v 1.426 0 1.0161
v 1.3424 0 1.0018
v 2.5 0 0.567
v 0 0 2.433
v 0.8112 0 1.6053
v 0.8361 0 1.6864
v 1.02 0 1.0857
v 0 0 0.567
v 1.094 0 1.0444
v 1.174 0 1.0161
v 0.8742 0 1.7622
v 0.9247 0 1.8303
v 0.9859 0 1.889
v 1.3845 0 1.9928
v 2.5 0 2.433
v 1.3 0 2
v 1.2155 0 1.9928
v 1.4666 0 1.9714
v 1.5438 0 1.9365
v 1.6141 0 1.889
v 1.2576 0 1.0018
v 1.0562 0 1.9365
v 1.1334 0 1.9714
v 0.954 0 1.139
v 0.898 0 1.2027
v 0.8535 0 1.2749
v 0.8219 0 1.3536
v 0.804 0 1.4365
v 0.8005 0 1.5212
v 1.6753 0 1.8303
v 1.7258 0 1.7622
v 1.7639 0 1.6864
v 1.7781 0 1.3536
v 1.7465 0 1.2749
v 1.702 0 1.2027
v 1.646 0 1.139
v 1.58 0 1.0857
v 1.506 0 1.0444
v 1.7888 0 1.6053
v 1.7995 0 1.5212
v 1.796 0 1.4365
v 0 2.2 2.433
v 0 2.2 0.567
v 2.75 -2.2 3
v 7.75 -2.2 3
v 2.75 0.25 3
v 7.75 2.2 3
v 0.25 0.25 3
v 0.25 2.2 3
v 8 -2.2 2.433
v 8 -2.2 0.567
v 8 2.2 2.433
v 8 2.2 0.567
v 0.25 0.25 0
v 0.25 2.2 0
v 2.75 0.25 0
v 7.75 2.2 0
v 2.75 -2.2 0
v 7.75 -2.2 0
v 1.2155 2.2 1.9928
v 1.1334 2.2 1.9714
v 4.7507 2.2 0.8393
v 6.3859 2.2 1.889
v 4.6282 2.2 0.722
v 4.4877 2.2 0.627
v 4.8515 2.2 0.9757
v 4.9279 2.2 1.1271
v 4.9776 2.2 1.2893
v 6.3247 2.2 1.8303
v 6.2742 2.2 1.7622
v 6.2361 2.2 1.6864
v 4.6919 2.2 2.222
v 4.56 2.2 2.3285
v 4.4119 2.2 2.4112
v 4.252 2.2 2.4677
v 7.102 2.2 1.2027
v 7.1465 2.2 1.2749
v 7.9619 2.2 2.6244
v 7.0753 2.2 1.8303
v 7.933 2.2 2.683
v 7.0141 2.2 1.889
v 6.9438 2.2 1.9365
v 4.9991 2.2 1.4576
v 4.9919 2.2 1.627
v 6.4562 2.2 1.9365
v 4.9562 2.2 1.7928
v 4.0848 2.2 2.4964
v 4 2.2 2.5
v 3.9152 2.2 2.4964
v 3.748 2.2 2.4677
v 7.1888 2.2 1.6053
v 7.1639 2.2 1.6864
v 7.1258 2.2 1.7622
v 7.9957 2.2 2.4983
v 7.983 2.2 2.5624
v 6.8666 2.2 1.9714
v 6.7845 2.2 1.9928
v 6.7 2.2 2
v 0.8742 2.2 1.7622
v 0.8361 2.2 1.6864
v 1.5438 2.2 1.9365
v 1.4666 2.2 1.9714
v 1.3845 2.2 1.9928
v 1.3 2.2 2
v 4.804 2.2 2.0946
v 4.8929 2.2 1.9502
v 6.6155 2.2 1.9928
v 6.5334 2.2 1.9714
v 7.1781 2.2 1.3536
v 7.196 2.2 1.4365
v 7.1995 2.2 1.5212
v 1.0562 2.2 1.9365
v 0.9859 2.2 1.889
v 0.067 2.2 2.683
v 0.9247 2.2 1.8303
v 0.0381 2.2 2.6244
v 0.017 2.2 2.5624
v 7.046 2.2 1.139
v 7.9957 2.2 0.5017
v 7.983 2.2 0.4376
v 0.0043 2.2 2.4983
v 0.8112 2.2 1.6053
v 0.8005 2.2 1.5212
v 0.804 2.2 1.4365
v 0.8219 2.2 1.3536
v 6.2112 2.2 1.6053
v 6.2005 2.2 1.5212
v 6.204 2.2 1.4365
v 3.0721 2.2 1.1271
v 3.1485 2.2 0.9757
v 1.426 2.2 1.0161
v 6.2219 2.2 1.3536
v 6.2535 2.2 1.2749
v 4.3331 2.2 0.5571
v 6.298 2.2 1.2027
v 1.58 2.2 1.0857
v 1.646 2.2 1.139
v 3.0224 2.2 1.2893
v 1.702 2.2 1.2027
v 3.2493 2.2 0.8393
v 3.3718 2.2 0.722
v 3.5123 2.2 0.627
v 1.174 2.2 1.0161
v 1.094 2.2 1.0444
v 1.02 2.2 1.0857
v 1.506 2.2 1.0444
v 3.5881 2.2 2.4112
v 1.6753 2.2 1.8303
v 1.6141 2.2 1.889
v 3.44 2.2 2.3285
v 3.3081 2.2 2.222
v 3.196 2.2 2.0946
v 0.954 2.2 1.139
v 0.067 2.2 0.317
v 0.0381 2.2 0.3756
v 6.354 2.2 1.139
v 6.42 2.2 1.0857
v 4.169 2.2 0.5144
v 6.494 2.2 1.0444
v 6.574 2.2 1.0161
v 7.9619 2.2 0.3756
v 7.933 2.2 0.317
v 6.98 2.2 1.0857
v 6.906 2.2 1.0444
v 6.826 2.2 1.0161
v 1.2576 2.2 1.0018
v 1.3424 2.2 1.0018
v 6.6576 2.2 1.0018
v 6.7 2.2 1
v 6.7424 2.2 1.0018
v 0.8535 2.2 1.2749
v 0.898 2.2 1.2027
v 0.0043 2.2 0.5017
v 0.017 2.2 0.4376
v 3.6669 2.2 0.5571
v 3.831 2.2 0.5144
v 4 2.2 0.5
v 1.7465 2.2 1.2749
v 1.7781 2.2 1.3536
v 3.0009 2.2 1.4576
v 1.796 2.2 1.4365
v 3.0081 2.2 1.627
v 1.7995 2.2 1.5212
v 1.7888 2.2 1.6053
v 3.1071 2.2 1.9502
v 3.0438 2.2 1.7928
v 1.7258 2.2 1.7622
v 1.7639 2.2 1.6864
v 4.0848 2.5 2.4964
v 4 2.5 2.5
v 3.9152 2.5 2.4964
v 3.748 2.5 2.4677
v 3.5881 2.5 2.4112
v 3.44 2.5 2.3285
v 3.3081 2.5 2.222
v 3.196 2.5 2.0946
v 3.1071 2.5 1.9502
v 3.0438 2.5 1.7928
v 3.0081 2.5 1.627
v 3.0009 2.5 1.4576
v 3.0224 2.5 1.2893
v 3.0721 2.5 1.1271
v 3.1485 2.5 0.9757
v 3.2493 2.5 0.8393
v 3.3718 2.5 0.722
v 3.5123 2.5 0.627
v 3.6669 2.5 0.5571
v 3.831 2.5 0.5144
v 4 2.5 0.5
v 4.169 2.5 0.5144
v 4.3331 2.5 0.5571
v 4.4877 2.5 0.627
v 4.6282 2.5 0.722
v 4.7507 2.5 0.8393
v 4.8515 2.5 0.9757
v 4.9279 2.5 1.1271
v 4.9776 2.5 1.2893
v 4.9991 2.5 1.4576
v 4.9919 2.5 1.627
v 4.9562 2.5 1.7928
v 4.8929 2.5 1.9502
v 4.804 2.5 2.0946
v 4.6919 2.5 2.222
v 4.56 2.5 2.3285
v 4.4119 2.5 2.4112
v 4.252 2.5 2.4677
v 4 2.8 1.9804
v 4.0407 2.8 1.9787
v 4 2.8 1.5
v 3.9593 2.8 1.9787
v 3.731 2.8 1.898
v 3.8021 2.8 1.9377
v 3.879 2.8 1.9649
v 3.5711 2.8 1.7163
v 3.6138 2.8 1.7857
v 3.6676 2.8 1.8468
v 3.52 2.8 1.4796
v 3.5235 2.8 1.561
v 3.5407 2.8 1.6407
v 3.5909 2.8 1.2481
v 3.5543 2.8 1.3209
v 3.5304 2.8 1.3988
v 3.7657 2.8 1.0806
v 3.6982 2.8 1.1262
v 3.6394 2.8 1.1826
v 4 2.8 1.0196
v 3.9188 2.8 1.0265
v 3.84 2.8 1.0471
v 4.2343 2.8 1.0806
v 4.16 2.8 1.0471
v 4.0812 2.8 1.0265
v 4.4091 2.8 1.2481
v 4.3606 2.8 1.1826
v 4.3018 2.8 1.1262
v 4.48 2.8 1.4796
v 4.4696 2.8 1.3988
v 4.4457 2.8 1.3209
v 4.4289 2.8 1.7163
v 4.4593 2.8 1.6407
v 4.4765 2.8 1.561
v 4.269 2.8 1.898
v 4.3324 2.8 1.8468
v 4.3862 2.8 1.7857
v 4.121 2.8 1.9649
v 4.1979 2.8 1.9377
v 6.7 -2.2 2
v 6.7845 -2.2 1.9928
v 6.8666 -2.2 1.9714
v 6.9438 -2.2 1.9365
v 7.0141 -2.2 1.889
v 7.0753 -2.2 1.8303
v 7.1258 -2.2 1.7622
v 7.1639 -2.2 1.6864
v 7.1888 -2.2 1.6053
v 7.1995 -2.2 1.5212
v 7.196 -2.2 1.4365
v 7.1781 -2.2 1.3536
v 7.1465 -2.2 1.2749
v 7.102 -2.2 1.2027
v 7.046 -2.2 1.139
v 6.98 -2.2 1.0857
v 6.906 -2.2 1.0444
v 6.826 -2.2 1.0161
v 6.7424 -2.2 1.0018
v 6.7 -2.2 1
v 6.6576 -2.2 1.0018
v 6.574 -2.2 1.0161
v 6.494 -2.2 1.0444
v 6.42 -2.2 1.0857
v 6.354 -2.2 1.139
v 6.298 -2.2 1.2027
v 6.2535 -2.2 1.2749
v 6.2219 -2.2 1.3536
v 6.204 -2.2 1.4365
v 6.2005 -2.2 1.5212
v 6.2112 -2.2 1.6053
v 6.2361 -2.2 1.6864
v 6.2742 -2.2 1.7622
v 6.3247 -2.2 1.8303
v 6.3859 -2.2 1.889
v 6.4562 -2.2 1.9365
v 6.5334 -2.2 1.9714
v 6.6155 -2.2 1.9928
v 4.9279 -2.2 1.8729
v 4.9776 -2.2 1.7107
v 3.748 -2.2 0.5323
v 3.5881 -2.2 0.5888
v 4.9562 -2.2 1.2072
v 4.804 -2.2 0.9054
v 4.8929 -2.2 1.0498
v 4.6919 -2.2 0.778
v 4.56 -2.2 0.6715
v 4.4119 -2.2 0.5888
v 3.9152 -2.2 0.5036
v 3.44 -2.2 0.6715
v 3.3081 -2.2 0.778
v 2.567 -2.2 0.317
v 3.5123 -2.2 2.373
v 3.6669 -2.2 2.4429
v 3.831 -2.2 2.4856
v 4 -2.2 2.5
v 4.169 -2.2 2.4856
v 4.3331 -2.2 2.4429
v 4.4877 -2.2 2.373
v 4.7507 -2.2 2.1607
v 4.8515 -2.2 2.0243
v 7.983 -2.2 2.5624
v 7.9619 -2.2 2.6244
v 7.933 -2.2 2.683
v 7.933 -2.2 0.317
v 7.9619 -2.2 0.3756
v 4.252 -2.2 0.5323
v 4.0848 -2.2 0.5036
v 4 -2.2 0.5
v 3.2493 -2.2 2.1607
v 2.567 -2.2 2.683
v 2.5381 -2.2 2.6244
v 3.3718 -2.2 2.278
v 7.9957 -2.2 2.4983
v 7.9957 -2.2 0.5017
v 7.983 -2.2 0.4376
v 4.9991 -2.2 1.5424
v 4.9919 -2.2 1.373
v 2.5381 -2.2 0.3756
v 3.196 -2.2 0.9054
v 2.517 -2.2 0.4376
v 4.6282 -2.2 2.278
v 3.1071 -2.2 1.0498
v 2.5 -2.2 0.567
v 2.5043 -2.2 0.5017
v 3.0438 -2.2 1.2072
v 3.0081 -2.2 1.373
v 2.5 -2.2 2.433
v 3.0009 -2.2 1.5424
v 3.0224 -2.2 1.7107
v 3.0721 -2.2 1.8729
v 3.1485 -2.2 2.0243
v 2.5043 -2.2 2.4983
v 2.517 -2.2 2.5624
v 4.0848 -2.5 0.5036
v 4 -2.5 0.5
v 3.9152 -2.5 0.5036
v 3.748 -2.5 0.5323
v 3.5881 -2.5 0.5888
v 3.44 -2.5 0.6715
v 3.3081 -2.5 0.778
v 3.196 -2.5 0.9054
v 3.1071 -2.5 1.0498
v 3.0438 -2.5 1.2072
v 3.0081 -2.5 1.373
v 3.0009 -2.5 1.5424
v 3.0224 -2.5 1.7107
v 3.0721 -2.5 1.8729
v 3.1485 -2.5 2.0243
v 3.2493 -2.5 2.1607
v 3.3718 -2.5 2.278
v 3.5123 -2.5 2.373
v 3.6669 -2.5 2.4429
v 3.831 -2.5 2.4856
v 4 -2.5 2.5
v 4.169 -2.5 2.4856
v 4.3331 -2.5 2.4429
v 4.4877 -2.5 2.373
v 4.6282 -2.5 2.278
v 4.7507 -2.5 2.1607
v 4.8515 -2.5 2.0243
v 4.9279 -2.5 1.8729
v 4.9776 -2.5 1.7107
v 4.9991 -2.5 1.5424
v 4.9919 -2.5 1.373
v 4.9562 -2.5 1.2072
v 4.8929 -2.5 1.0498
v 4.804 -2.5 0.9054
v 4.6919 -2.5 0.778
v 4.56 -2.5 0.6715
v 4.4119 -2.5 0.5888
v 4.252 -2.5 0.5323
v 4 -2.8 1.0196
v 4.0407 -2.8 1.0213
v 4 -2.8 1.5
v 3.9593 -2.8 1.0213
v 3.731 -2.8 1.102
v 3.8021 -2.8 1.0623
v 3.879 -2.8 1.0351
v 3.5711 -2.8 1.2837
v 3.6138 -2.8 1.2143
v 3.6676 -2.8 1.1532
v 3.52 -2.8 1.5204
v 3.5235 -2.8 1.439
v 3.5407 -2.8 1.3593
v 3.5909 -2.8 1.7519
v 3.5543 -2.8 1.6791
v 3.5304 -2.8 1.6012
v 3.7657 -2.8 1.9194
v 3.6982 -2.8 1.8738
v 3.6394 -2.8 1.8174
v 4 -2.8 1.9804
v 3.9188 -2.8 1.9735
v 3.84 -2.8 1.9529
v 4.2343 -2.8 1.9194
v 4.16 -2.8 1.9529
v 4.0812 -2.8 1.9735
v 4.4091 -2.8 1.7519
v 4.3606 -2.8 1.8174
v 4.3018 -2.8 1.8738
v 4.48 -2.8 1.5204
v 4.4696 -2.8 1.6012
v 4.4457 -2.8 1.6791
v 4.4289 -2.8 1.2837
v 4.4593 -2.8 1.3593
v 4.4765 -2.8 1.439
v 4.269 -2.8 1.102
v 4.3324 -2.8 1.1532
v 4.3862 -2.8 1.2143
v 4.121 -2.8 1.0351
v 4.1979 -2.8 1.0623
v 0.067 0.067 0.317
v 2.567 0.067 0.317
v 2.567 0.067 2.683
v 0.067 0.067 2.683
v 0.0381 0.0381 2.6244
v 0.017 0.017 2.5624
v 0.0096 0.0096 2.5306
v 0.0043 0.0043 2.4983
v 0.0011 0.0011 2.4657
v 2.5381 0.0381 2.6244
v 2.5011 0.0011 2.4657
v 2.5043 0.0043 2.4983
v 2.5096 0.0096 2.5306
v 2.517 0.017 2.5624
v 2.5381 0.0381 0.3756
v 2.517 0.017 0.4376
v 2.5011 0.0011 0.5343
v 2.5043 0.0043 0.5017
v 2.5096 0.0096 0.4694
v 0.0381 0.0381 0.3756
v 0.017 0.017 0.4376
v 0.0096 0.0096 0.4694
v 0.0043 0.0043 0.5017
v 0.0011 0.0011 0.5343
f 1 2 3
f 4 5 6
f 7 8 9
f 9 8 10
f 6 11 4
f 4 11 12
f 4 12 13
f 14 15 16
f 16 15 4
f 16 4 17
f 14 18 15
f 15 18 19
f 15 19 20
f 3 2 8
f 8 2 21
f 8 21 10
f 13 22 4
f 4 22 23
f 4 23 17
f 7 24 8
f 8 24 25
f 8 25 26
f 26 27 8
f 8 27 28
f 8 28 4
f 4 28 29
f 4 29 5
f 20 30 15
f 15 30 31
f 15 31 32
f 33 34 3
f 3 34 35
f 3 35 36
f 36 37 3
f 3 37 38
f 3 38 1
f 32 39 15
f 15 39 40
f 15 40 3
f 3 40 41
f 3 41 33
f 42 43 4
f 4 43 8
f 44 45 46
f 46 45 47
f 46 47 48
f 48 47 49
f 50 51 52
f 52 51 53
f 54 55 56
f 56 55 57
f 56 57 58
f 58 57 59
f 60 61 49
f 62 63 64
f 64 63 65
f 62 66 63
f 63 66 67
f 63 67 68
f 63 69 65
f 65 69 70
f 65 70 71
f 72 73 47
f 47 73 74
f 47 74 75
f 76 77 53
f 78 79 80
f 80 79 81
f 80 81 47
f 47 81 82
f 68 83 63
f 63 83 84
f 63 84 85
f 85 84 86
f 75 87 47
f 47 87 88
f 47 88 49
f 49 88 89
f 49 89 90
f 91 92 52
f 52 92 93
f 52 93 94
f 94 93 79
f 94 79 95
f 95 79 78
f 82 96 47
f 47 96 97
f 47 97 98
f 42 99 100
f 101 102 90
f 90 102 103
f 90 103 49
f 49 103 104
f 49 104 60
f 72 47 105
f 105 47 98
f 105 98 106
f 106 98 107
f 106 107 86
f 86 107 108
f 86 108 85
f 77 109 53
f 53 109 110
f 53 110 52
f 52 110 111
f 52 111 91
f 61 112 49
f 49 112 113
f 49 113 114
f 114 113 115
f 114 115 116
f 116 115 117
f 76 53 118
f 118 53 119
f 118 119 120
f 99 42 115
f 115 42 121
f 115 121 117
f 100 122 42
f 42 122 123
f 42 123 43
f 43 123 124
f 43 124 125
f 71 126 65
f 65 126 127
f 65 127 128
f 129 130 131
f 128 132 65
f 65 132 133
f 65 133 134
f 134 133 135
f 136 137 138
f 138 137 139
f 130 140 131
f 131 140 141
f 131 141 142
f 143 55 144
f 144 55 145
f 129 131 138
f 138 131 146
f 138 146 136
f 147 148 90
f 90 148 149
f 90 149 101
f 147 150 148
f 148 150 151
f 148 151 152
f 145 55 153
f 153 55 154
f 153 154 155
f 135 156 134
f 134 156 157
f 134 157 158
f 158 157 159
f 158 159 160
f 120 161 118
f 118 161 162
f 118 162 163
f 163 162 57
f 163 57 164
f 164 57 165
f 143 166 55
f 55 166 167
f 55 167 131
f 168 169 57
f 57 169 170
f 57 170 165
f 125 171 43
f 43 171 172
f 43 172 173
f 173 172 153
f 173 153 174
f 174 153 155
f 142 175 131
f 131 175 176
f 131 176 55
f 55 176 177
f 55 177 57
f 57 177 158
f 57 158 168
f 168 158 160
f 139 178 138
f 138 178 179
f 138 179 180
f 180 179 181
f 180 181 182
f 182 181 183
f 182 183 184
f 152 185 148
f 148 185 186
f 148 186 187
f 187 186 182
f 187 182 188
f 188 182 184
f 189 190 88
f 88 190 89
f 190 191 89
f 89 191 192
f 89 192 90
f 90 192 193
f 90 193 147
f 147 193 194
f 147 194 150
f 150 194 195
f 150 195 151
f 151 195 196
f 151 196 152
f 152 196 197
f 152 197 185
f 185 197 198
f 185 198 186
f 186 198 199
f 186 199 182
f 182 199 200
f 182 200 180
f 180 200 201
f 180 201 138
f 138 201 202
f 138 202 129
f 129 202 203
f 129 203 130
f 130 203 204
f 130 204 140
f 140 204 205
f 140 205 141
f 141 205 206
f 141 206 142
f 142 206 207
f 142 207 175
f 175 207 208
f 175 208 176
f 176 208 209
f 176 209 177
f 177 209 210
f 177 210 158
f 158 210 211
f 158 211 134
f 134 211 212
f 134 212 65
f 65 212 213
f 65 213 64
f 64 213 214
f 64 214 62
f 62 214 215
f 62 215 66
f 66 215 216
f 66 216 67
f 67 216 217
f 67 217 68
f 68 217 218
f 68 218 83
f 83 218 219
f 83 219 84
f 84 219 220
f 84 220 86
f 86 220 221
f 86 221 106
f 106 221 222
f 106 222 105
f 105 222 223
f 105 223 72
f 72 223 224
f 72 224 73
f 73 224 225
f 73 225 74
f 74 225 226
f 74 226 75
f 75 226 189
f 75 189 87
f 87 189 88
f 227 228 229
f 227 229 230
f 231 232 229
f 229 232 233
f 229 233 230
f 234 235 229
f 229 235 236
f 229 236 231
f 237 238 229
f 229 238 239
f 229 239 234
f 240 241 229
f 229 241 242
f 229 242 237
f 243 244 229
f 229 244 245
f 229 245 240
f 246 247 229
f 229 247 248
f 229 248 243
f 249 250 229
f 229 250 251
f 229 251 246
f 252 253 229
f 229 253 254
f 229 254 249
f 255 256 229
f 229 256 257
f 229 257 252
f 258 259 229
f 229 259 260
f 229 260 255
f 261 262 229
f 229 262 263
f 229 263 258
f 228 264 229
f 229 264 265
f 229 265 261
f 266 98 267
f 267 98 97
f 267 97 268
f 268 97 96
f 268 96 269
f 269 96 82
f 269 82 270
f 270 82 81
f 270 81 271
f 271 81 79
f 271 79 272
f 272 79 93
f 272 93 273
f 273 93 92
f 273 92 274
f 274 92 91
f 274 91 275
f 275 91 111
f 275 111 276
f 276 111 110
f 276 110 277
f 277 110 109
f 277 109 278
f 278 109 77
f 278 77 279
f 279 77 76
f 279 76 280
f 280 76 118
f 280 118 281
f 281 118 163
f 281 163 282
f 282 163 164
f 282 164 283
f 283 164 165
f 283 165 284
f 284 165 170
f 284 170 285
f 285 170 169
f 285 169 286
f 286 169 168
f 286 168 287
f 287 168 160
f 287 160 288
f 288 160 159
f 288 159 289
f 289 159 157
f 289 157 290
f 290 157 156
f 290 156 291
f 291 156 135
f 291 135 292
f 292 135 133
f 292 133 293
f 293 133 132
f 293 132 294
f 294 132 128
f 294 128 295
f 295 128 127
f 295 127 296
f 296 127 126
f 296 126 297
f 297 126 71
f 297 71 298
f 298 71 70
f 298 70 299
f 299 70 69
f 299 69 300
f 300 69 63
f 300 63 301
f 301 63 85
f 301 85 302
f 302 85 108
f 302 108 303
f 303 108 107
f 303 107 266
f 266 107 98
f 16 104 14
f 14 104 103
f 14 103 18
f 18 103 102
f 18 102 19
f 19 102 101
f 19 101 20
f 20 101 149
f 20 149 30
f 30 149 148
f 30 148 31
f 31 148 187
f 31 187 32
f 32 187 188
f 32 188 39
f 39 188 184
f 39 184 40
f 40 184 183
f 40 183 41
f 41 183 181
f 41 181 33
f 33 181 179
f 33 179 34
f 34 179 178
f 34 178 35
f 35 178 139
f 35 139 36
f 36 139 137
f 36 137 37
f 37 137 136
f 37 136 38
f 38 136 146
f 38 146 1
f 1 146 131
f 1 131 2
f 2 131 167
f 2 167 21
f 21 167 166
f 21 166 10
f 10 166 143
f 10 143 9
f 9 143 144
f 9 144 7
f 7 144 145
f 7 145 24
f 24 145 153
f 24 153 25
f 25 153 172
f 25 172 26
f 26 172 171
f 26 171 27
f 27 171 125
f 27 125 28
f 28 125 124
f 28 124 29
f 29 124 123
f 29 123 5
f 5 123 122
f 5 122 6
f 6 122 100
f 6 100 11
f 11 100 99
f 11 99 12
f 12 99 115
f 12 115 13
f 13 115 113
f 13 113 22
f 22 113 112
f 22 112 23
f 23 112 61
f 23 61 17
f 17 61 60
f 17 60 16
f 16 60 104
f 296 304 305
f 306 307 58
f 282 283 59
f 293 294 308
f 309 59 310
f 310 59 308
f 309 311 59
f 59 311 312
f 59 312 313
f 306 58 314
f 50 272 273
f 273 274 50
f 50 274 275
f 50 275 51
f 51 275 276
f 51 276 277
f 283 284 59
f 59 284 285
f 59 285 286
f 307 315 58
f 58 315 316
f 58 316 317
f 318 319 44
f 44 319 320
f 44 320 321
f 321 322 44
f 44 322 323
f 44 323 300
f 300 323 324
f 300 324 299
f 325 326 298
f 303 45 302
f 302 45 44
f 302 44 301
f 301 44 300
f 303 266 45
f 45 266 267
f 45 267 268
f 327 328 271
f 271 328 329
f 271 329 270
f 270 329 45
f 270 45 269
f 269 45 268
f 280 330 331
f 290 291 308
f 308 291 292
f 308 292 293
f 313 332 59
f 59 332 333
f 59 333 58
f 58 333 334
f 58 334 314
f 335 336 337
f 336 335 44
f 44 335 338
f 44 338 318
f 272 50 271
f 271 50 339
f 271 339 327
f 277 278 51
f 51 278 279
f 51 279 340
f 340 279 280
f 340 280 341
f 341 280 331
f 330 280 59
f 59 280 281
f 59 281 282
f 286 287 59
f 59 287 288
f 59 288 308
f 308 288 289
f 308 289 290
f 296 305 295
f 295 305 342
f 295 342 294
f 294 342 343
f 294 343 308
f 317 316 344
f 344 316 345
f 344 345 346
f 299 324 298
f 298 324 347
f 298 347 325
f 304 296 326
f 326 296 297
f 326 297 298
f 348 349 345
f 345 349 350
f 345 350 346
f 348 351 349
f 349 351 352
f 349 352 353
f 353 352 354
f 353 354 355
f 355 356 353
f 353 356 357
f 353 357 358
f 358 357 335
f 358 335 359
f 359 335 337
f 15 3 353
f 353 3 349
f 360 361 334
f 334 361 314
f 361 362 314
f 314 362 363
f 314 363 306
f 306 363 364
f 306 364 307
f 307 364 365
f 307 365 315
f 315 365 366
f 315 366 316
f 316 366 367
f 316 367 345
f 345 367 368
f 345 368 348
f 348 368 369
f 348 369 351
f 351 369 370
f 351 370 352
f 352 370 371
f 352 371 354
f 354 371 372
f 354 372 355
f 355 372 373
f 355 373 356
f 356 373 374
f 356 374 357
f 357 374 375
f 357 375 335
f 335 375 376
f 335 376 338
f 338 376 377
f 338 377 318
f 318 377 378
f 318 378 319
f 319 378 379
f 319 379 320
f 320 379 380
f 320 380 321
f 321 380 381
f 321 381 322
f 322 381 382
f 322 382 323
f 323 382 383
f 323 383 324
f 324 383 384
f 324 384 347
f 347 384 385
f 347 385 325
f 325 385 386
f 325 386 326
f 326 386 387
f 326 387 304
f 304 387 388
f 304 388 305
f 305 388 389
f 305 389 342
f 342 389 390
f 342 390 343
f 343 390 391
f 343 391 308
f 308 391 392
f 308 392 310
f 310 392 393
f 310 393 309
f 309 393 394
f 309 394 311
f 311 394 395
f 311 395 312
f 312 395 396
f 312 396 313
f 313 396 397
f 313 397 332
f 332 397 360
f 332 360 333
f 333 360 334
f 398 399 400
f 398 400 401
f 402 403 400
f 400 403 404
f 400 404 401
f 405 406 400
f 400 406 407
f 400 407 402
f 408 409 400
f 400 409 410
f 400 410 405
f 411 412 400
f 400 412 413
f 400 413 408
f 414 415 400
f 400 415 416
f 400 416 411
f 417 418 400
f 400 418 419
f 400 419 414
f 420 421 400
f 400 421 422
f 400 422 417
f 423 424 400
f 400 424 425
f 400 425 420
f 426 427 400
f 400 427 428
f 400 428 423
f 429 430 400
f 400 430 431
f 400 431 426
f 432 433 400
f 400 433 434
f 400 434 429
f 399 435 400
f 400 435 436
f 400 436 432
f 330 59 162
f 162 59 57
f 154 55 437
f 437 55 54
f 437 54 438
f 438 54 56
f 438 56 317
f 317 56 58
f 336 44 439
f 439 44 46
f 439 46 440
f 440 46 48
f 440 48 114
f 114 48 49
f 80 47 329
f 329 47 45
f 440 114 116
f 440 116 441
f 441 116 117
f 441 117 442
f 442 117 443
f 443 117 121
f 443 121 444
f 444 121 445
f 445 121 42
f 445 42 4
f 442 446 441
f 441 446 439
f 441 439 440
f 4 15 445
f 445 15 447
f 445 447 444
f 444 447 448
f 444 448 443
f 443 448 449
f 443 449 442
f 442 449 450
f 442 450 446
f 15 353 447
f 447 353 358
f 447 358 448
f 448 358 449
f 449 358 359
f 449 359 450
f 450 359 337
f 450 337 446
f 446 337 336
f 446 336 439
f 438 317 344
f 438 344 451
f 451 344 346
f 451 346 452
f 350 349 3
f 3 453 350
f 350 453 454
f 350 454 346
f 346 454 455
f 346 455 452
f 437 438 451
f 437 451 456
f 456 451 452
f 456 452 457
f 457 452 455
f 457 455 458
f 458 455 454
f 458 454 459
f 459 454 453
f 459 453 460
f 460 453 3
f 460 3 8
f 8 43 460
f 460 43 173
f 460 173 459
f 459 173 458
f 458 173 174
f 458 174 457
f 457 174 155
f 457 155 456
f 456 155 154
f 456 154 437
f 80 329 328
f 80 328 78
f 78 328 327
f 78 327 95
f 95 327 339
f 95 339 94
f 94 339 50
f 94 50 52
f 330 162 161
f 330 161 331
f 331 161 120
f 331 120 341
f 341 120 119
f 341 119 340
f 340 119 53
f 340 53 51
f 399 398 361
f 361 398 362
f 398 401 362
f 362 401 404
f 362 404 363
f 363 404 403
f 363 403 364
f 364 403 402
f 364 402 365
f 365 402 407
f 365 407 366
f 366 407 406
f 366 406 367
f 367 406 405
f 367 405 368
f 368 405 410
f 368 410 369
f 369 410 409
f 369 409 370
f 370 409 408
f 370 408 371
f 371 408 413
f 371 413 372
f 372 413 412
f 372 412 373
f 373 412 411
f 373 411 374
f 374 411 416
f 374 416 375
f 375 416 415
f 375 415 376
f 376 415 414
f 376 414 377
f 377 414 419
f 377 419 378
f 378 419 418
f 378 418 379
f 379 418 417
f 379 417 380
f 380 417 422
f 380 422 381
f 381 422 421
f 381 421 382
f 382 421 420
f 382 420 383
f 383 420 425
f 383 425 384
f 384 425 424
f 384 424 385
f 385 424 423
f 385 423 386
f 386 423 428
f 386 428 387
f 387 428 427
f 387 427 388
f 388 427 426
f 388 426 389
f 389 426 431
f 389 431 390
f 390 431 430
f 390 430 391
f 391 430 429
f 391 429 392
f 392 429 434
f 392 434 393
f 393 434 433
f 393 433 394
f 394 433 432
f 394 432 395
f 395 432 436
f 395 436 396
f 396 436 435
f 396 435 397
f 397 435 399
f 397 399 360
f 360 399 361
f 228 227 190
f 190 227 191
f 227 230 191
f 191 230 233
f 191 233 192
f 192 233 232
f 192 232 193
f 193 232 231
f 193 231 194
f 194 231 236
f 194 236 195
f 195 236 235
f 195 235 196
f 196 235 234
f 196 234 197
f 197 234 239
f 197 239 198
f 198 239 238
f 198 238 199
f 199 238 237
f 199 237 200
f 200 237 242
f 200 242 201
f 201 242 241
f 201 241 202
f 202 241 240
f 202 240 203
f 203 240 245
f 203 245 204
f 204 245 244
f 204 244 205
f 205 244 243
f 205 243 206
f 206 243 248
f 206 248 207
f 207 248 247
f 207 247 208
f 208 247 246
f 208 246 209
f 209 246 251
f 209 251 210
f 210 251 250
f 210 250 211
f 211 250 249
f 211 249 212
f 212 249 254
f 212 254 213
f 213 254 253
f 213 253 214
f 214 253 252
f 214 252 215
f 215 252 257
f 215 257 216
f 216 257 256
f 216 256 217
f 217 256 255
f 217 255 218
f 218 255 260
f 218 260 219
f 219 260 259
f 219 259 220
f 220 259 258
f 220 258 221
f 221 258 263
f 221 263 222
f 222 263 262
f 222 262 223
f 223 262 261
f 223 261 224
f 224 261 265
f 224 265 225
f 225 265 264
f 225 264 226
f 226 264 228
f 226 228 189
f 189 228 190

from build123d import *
from OCP.BRepFilletAPI import BRepFilletAPI_MakeChamfer
from build123d.topology import SkipClean

# Parameters (mm, degrees)
SKETCH1_W           = 8
SKETCH1_H           = 3
BOSS_EXTRUDE1_DEPTH = 2.2
SKETCH2_R           = 1
BOSS_EXTRUDE2_DEPTH = 0.6
SKETCH3_R           = 0.5
CUT_EXTRUDE1_DEPTH  = 2.5
SKETCH4_W           = 5.5
SKETCH4_H           = 3
BOSS_EXTRUDE3_DEPTH = 2.2
BOSS_EXTRUDE4_START = 0.6
SKETCH5_R           = 1
BOSS_EXTRUDE4_DEPTH = 0.6
CUT_EXTRUDE2_START  = -2.5
SKETCH6_R           = 0.5
CUT_EXTRUDE2_DEPTH  = 2.5
CHAMFER1_SIZE       = 0.25
CHAMFER1_SIZE2      = 0.433012702
FILLET1_R           = 0.5
CHAMFER2_SIZE       = 0.3
CHAMFER2_SIZE2      = 0.519615242


with BuildPart() as part:
    # Sketch1 → Boss-Extrude1 (new body)
    with BuildSketch(Plane(origin=(0, 0, 0), x_dir=(1, 0, 0), z_dir=(0, 1, 0))):
        with Locations((4, -1.5)):
            Rectangle(SKETCH1_W, SKETCH1_H)
    extrude(amount=BOSS_EXTRUDE1_DEPTH)

    # Sketch2 → Boss-Extrude2 (add)
    with BuildSketch(Plane(origin=(0, 2.2, 0), x_dir=(1, 0, 0), z_dir=(0, 1, 0))):
        with Locations(Location((4, -1.5, 0), (0, 0, 270))):
            Circle(SKETCH2_R)
    extrude(amount=BOSS_EXTRUDE2_DEPTH)

    # Sketch3 → Cut-Extrude1 (cut)
    with BuildSketch(Plane(origin=(0, 2.2, 0), x_dir=(1, 0, 0), z_dir=(0, 1, 0))):
        with Locations(Location((1.3, -1.5, 0), (0, 0, 270))):
            Circle(SKETCH3_R)
        with Locations(Location((6.7, -1.5, 0), (0, 0, 270))):
            Circle(SKETCH3_R)
    extrude(amount=-CUT_EXTRUDE1_DEPTH, mode=Mode.SUBTRACT)

    # Sketch4 → Boss-Extrude3 (add)
    with BuildSketch(Plane.XZ):
        with Locations((5.25, 1.5)):
            Rectangle(SKETCH4_W, SKETCH4_H)
    extrude(amount=BOSS_EXTRUDE3_DEPTH)

    # Sketch5 → Boss-Extrude4 (add)
    with BuildSketch(Plane.XZ.offset(2.2).offset(BOSS_EXTRUDE4_START)):
        with Locations(Location((4, 1.5, 0), (0, 0, 90))):
            Circle(SKETCH5_R)
    extrude(amount=-BOSS_EXTRUDE4_DEPTH)

    # Sketch6 → Cut-Extrude2 (cut)
    with SkipClean():  # the faces are left unmerged after this step: merging them gives an invalid solid
        with BuildSketch(Plane.XZ.offset(2.2).offset(CUT_EXTRUDE2_START)):
            with Locations(Location((6.7, 1.5, 0), (0, 0, 270))):
                Circle(SKETCH6_R)
        extrude(amount=CUT_EXTRUDE2_DEPTH, mode=Mode.SUBTRACT)

    # Chamfer1: one chamfer whose edges measure the first distance from different faces: ONE call of the kernel's chamfer builder (chamfer() names one face for all edges)
    chamfer1_edges_1 = [part.edges().sort_by_distance(p)[0] for p in [
        (1.25, 0, 0),
        (2.5, -1.1, 0),
        (0, 1.1, 0),
        (8, 0, 0),
    ]]
    chamfer1_side_1 = [part.faces().sort_by_distance(p)[0] for p in [
        (4.509259259, 0.203703704, 0),
    ]]
    chamfer1_edges_2 = [part.edges().sort_by_distance(p)[0] for p in [
        (2.5, -1.1, 3),
        (1.25, 0, 3),
        (8, 0, 3),
        (0, 1.1, 3),
    ]]
    chamfer1_side_2 = [part.faces().sort_by_distance(p)[0] for p in [
        (4.509259259, 0.203703704, 3),
    ]]
    chamfer1 = BRepFilletAPI_MakeChamfer(part.part.solid().wrapped)
    for e in chamfer1_edges_1:
        chamfer1.Add(CHAMFER1_SIZE, CHAMFER1_SIZE2, e.wrapped, chamfer1_side_1[0].wrapped)  # the first distance lies on this face
    for e in chamfer1_edges_2:
        chamfer1.Add(CHAMFER1_SIZE, CHAMFER1_SIZE2, e.wrapped, chamfer1_side_2[0].wrapped)  # the first distance lies on this face
    add(Compound.cast(chamfer1.Shape()), mode=Mode.REPLACE)

    # Fillet1
    fillet1_edges = [part.edges().sort_by_distance(p)[0] for p in [
        (8, 0, 2.566987298),
        (8, 0, 0.433012702),
        (2.5, -1.1, 2.566987298),
        (2.5, -1.1, 0.433012702),
        (1.25, 0, 2.566987298),
        (1.25, 0, 0.433012702),
        (0, 1.1, 2.566987298),
        (0, 1.1, 0.433012702),
    ]]
    fillet(fillet1_edges, radius=FILLET1_R)

    # Chamfer2: one chamfer whose edges measure the first distance from different faces: ONE call of the kernel's chamfer builder (chamfer() names one face for all edges)
    chamfer2_edges_1 = [part.edges().sort_by_distance(p)[0] for p in [
        (4, 2.8, 0.5),
    ]]
    chamfer2_side_1 = [part.faces().sort_by_distance(p)[0] for p in [
        (4, 2.5, 0.5),
    ]]
    chamfer2_edges_2 = [part.edges().sort_by_distance(p)[0] for p in [
        (4, -2.8, 0.5),
    ]]
    chamfer2_side_2 = [part.faces().sort_by_distance(p)[0] for p in [
        (4, -2.5, 0.5),
    ]]
    chamfer2 = BRepFilletAPI_MakeChamfer(part.part.solid().wrapped)
    for e in chamfer2_edges_1:
        chamfer2.Add(CHAMFER2_SIZE, CHAMFER2_SIZE2, e.wrapped, chamfer2_side_1[0].wrapped)  # the first distance lies on this face
    for e in chamfer2_edges_2:
        chamfer2.Add(CHAMFER2_SIZE, CHAMFER2_SIZE2, e.wrapped, chamfer2_side_2[0].wrapped)  # the first distance lies on this face
    add(Compound.cast(chamfer2.Shape()), mode=Mode.REPLACE)


solid = part.part
